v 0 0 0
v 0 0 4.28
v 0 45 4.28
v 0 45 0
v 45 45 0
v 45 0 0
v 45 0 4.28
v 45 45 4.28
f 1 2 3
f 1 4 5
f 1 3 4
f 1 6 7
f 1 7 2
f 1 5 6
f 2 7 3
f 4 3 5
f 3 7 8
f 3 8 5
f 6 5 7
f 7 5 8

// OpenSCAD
/* Warning, this is a very basic generator with a lot of approximation 
input data : [HB2BGA, 9AW, 45x45x4.28mm, 1932, , B, C04-00636B]
generated by com.zoubworld.electronics.cad.model3d.Basic
Date : Sun Feb 15 10:50:49 CET 2026
*/

//body
color("black")
translate([0,0,0])
cube([45.0,45.0,4.28], center=false);
